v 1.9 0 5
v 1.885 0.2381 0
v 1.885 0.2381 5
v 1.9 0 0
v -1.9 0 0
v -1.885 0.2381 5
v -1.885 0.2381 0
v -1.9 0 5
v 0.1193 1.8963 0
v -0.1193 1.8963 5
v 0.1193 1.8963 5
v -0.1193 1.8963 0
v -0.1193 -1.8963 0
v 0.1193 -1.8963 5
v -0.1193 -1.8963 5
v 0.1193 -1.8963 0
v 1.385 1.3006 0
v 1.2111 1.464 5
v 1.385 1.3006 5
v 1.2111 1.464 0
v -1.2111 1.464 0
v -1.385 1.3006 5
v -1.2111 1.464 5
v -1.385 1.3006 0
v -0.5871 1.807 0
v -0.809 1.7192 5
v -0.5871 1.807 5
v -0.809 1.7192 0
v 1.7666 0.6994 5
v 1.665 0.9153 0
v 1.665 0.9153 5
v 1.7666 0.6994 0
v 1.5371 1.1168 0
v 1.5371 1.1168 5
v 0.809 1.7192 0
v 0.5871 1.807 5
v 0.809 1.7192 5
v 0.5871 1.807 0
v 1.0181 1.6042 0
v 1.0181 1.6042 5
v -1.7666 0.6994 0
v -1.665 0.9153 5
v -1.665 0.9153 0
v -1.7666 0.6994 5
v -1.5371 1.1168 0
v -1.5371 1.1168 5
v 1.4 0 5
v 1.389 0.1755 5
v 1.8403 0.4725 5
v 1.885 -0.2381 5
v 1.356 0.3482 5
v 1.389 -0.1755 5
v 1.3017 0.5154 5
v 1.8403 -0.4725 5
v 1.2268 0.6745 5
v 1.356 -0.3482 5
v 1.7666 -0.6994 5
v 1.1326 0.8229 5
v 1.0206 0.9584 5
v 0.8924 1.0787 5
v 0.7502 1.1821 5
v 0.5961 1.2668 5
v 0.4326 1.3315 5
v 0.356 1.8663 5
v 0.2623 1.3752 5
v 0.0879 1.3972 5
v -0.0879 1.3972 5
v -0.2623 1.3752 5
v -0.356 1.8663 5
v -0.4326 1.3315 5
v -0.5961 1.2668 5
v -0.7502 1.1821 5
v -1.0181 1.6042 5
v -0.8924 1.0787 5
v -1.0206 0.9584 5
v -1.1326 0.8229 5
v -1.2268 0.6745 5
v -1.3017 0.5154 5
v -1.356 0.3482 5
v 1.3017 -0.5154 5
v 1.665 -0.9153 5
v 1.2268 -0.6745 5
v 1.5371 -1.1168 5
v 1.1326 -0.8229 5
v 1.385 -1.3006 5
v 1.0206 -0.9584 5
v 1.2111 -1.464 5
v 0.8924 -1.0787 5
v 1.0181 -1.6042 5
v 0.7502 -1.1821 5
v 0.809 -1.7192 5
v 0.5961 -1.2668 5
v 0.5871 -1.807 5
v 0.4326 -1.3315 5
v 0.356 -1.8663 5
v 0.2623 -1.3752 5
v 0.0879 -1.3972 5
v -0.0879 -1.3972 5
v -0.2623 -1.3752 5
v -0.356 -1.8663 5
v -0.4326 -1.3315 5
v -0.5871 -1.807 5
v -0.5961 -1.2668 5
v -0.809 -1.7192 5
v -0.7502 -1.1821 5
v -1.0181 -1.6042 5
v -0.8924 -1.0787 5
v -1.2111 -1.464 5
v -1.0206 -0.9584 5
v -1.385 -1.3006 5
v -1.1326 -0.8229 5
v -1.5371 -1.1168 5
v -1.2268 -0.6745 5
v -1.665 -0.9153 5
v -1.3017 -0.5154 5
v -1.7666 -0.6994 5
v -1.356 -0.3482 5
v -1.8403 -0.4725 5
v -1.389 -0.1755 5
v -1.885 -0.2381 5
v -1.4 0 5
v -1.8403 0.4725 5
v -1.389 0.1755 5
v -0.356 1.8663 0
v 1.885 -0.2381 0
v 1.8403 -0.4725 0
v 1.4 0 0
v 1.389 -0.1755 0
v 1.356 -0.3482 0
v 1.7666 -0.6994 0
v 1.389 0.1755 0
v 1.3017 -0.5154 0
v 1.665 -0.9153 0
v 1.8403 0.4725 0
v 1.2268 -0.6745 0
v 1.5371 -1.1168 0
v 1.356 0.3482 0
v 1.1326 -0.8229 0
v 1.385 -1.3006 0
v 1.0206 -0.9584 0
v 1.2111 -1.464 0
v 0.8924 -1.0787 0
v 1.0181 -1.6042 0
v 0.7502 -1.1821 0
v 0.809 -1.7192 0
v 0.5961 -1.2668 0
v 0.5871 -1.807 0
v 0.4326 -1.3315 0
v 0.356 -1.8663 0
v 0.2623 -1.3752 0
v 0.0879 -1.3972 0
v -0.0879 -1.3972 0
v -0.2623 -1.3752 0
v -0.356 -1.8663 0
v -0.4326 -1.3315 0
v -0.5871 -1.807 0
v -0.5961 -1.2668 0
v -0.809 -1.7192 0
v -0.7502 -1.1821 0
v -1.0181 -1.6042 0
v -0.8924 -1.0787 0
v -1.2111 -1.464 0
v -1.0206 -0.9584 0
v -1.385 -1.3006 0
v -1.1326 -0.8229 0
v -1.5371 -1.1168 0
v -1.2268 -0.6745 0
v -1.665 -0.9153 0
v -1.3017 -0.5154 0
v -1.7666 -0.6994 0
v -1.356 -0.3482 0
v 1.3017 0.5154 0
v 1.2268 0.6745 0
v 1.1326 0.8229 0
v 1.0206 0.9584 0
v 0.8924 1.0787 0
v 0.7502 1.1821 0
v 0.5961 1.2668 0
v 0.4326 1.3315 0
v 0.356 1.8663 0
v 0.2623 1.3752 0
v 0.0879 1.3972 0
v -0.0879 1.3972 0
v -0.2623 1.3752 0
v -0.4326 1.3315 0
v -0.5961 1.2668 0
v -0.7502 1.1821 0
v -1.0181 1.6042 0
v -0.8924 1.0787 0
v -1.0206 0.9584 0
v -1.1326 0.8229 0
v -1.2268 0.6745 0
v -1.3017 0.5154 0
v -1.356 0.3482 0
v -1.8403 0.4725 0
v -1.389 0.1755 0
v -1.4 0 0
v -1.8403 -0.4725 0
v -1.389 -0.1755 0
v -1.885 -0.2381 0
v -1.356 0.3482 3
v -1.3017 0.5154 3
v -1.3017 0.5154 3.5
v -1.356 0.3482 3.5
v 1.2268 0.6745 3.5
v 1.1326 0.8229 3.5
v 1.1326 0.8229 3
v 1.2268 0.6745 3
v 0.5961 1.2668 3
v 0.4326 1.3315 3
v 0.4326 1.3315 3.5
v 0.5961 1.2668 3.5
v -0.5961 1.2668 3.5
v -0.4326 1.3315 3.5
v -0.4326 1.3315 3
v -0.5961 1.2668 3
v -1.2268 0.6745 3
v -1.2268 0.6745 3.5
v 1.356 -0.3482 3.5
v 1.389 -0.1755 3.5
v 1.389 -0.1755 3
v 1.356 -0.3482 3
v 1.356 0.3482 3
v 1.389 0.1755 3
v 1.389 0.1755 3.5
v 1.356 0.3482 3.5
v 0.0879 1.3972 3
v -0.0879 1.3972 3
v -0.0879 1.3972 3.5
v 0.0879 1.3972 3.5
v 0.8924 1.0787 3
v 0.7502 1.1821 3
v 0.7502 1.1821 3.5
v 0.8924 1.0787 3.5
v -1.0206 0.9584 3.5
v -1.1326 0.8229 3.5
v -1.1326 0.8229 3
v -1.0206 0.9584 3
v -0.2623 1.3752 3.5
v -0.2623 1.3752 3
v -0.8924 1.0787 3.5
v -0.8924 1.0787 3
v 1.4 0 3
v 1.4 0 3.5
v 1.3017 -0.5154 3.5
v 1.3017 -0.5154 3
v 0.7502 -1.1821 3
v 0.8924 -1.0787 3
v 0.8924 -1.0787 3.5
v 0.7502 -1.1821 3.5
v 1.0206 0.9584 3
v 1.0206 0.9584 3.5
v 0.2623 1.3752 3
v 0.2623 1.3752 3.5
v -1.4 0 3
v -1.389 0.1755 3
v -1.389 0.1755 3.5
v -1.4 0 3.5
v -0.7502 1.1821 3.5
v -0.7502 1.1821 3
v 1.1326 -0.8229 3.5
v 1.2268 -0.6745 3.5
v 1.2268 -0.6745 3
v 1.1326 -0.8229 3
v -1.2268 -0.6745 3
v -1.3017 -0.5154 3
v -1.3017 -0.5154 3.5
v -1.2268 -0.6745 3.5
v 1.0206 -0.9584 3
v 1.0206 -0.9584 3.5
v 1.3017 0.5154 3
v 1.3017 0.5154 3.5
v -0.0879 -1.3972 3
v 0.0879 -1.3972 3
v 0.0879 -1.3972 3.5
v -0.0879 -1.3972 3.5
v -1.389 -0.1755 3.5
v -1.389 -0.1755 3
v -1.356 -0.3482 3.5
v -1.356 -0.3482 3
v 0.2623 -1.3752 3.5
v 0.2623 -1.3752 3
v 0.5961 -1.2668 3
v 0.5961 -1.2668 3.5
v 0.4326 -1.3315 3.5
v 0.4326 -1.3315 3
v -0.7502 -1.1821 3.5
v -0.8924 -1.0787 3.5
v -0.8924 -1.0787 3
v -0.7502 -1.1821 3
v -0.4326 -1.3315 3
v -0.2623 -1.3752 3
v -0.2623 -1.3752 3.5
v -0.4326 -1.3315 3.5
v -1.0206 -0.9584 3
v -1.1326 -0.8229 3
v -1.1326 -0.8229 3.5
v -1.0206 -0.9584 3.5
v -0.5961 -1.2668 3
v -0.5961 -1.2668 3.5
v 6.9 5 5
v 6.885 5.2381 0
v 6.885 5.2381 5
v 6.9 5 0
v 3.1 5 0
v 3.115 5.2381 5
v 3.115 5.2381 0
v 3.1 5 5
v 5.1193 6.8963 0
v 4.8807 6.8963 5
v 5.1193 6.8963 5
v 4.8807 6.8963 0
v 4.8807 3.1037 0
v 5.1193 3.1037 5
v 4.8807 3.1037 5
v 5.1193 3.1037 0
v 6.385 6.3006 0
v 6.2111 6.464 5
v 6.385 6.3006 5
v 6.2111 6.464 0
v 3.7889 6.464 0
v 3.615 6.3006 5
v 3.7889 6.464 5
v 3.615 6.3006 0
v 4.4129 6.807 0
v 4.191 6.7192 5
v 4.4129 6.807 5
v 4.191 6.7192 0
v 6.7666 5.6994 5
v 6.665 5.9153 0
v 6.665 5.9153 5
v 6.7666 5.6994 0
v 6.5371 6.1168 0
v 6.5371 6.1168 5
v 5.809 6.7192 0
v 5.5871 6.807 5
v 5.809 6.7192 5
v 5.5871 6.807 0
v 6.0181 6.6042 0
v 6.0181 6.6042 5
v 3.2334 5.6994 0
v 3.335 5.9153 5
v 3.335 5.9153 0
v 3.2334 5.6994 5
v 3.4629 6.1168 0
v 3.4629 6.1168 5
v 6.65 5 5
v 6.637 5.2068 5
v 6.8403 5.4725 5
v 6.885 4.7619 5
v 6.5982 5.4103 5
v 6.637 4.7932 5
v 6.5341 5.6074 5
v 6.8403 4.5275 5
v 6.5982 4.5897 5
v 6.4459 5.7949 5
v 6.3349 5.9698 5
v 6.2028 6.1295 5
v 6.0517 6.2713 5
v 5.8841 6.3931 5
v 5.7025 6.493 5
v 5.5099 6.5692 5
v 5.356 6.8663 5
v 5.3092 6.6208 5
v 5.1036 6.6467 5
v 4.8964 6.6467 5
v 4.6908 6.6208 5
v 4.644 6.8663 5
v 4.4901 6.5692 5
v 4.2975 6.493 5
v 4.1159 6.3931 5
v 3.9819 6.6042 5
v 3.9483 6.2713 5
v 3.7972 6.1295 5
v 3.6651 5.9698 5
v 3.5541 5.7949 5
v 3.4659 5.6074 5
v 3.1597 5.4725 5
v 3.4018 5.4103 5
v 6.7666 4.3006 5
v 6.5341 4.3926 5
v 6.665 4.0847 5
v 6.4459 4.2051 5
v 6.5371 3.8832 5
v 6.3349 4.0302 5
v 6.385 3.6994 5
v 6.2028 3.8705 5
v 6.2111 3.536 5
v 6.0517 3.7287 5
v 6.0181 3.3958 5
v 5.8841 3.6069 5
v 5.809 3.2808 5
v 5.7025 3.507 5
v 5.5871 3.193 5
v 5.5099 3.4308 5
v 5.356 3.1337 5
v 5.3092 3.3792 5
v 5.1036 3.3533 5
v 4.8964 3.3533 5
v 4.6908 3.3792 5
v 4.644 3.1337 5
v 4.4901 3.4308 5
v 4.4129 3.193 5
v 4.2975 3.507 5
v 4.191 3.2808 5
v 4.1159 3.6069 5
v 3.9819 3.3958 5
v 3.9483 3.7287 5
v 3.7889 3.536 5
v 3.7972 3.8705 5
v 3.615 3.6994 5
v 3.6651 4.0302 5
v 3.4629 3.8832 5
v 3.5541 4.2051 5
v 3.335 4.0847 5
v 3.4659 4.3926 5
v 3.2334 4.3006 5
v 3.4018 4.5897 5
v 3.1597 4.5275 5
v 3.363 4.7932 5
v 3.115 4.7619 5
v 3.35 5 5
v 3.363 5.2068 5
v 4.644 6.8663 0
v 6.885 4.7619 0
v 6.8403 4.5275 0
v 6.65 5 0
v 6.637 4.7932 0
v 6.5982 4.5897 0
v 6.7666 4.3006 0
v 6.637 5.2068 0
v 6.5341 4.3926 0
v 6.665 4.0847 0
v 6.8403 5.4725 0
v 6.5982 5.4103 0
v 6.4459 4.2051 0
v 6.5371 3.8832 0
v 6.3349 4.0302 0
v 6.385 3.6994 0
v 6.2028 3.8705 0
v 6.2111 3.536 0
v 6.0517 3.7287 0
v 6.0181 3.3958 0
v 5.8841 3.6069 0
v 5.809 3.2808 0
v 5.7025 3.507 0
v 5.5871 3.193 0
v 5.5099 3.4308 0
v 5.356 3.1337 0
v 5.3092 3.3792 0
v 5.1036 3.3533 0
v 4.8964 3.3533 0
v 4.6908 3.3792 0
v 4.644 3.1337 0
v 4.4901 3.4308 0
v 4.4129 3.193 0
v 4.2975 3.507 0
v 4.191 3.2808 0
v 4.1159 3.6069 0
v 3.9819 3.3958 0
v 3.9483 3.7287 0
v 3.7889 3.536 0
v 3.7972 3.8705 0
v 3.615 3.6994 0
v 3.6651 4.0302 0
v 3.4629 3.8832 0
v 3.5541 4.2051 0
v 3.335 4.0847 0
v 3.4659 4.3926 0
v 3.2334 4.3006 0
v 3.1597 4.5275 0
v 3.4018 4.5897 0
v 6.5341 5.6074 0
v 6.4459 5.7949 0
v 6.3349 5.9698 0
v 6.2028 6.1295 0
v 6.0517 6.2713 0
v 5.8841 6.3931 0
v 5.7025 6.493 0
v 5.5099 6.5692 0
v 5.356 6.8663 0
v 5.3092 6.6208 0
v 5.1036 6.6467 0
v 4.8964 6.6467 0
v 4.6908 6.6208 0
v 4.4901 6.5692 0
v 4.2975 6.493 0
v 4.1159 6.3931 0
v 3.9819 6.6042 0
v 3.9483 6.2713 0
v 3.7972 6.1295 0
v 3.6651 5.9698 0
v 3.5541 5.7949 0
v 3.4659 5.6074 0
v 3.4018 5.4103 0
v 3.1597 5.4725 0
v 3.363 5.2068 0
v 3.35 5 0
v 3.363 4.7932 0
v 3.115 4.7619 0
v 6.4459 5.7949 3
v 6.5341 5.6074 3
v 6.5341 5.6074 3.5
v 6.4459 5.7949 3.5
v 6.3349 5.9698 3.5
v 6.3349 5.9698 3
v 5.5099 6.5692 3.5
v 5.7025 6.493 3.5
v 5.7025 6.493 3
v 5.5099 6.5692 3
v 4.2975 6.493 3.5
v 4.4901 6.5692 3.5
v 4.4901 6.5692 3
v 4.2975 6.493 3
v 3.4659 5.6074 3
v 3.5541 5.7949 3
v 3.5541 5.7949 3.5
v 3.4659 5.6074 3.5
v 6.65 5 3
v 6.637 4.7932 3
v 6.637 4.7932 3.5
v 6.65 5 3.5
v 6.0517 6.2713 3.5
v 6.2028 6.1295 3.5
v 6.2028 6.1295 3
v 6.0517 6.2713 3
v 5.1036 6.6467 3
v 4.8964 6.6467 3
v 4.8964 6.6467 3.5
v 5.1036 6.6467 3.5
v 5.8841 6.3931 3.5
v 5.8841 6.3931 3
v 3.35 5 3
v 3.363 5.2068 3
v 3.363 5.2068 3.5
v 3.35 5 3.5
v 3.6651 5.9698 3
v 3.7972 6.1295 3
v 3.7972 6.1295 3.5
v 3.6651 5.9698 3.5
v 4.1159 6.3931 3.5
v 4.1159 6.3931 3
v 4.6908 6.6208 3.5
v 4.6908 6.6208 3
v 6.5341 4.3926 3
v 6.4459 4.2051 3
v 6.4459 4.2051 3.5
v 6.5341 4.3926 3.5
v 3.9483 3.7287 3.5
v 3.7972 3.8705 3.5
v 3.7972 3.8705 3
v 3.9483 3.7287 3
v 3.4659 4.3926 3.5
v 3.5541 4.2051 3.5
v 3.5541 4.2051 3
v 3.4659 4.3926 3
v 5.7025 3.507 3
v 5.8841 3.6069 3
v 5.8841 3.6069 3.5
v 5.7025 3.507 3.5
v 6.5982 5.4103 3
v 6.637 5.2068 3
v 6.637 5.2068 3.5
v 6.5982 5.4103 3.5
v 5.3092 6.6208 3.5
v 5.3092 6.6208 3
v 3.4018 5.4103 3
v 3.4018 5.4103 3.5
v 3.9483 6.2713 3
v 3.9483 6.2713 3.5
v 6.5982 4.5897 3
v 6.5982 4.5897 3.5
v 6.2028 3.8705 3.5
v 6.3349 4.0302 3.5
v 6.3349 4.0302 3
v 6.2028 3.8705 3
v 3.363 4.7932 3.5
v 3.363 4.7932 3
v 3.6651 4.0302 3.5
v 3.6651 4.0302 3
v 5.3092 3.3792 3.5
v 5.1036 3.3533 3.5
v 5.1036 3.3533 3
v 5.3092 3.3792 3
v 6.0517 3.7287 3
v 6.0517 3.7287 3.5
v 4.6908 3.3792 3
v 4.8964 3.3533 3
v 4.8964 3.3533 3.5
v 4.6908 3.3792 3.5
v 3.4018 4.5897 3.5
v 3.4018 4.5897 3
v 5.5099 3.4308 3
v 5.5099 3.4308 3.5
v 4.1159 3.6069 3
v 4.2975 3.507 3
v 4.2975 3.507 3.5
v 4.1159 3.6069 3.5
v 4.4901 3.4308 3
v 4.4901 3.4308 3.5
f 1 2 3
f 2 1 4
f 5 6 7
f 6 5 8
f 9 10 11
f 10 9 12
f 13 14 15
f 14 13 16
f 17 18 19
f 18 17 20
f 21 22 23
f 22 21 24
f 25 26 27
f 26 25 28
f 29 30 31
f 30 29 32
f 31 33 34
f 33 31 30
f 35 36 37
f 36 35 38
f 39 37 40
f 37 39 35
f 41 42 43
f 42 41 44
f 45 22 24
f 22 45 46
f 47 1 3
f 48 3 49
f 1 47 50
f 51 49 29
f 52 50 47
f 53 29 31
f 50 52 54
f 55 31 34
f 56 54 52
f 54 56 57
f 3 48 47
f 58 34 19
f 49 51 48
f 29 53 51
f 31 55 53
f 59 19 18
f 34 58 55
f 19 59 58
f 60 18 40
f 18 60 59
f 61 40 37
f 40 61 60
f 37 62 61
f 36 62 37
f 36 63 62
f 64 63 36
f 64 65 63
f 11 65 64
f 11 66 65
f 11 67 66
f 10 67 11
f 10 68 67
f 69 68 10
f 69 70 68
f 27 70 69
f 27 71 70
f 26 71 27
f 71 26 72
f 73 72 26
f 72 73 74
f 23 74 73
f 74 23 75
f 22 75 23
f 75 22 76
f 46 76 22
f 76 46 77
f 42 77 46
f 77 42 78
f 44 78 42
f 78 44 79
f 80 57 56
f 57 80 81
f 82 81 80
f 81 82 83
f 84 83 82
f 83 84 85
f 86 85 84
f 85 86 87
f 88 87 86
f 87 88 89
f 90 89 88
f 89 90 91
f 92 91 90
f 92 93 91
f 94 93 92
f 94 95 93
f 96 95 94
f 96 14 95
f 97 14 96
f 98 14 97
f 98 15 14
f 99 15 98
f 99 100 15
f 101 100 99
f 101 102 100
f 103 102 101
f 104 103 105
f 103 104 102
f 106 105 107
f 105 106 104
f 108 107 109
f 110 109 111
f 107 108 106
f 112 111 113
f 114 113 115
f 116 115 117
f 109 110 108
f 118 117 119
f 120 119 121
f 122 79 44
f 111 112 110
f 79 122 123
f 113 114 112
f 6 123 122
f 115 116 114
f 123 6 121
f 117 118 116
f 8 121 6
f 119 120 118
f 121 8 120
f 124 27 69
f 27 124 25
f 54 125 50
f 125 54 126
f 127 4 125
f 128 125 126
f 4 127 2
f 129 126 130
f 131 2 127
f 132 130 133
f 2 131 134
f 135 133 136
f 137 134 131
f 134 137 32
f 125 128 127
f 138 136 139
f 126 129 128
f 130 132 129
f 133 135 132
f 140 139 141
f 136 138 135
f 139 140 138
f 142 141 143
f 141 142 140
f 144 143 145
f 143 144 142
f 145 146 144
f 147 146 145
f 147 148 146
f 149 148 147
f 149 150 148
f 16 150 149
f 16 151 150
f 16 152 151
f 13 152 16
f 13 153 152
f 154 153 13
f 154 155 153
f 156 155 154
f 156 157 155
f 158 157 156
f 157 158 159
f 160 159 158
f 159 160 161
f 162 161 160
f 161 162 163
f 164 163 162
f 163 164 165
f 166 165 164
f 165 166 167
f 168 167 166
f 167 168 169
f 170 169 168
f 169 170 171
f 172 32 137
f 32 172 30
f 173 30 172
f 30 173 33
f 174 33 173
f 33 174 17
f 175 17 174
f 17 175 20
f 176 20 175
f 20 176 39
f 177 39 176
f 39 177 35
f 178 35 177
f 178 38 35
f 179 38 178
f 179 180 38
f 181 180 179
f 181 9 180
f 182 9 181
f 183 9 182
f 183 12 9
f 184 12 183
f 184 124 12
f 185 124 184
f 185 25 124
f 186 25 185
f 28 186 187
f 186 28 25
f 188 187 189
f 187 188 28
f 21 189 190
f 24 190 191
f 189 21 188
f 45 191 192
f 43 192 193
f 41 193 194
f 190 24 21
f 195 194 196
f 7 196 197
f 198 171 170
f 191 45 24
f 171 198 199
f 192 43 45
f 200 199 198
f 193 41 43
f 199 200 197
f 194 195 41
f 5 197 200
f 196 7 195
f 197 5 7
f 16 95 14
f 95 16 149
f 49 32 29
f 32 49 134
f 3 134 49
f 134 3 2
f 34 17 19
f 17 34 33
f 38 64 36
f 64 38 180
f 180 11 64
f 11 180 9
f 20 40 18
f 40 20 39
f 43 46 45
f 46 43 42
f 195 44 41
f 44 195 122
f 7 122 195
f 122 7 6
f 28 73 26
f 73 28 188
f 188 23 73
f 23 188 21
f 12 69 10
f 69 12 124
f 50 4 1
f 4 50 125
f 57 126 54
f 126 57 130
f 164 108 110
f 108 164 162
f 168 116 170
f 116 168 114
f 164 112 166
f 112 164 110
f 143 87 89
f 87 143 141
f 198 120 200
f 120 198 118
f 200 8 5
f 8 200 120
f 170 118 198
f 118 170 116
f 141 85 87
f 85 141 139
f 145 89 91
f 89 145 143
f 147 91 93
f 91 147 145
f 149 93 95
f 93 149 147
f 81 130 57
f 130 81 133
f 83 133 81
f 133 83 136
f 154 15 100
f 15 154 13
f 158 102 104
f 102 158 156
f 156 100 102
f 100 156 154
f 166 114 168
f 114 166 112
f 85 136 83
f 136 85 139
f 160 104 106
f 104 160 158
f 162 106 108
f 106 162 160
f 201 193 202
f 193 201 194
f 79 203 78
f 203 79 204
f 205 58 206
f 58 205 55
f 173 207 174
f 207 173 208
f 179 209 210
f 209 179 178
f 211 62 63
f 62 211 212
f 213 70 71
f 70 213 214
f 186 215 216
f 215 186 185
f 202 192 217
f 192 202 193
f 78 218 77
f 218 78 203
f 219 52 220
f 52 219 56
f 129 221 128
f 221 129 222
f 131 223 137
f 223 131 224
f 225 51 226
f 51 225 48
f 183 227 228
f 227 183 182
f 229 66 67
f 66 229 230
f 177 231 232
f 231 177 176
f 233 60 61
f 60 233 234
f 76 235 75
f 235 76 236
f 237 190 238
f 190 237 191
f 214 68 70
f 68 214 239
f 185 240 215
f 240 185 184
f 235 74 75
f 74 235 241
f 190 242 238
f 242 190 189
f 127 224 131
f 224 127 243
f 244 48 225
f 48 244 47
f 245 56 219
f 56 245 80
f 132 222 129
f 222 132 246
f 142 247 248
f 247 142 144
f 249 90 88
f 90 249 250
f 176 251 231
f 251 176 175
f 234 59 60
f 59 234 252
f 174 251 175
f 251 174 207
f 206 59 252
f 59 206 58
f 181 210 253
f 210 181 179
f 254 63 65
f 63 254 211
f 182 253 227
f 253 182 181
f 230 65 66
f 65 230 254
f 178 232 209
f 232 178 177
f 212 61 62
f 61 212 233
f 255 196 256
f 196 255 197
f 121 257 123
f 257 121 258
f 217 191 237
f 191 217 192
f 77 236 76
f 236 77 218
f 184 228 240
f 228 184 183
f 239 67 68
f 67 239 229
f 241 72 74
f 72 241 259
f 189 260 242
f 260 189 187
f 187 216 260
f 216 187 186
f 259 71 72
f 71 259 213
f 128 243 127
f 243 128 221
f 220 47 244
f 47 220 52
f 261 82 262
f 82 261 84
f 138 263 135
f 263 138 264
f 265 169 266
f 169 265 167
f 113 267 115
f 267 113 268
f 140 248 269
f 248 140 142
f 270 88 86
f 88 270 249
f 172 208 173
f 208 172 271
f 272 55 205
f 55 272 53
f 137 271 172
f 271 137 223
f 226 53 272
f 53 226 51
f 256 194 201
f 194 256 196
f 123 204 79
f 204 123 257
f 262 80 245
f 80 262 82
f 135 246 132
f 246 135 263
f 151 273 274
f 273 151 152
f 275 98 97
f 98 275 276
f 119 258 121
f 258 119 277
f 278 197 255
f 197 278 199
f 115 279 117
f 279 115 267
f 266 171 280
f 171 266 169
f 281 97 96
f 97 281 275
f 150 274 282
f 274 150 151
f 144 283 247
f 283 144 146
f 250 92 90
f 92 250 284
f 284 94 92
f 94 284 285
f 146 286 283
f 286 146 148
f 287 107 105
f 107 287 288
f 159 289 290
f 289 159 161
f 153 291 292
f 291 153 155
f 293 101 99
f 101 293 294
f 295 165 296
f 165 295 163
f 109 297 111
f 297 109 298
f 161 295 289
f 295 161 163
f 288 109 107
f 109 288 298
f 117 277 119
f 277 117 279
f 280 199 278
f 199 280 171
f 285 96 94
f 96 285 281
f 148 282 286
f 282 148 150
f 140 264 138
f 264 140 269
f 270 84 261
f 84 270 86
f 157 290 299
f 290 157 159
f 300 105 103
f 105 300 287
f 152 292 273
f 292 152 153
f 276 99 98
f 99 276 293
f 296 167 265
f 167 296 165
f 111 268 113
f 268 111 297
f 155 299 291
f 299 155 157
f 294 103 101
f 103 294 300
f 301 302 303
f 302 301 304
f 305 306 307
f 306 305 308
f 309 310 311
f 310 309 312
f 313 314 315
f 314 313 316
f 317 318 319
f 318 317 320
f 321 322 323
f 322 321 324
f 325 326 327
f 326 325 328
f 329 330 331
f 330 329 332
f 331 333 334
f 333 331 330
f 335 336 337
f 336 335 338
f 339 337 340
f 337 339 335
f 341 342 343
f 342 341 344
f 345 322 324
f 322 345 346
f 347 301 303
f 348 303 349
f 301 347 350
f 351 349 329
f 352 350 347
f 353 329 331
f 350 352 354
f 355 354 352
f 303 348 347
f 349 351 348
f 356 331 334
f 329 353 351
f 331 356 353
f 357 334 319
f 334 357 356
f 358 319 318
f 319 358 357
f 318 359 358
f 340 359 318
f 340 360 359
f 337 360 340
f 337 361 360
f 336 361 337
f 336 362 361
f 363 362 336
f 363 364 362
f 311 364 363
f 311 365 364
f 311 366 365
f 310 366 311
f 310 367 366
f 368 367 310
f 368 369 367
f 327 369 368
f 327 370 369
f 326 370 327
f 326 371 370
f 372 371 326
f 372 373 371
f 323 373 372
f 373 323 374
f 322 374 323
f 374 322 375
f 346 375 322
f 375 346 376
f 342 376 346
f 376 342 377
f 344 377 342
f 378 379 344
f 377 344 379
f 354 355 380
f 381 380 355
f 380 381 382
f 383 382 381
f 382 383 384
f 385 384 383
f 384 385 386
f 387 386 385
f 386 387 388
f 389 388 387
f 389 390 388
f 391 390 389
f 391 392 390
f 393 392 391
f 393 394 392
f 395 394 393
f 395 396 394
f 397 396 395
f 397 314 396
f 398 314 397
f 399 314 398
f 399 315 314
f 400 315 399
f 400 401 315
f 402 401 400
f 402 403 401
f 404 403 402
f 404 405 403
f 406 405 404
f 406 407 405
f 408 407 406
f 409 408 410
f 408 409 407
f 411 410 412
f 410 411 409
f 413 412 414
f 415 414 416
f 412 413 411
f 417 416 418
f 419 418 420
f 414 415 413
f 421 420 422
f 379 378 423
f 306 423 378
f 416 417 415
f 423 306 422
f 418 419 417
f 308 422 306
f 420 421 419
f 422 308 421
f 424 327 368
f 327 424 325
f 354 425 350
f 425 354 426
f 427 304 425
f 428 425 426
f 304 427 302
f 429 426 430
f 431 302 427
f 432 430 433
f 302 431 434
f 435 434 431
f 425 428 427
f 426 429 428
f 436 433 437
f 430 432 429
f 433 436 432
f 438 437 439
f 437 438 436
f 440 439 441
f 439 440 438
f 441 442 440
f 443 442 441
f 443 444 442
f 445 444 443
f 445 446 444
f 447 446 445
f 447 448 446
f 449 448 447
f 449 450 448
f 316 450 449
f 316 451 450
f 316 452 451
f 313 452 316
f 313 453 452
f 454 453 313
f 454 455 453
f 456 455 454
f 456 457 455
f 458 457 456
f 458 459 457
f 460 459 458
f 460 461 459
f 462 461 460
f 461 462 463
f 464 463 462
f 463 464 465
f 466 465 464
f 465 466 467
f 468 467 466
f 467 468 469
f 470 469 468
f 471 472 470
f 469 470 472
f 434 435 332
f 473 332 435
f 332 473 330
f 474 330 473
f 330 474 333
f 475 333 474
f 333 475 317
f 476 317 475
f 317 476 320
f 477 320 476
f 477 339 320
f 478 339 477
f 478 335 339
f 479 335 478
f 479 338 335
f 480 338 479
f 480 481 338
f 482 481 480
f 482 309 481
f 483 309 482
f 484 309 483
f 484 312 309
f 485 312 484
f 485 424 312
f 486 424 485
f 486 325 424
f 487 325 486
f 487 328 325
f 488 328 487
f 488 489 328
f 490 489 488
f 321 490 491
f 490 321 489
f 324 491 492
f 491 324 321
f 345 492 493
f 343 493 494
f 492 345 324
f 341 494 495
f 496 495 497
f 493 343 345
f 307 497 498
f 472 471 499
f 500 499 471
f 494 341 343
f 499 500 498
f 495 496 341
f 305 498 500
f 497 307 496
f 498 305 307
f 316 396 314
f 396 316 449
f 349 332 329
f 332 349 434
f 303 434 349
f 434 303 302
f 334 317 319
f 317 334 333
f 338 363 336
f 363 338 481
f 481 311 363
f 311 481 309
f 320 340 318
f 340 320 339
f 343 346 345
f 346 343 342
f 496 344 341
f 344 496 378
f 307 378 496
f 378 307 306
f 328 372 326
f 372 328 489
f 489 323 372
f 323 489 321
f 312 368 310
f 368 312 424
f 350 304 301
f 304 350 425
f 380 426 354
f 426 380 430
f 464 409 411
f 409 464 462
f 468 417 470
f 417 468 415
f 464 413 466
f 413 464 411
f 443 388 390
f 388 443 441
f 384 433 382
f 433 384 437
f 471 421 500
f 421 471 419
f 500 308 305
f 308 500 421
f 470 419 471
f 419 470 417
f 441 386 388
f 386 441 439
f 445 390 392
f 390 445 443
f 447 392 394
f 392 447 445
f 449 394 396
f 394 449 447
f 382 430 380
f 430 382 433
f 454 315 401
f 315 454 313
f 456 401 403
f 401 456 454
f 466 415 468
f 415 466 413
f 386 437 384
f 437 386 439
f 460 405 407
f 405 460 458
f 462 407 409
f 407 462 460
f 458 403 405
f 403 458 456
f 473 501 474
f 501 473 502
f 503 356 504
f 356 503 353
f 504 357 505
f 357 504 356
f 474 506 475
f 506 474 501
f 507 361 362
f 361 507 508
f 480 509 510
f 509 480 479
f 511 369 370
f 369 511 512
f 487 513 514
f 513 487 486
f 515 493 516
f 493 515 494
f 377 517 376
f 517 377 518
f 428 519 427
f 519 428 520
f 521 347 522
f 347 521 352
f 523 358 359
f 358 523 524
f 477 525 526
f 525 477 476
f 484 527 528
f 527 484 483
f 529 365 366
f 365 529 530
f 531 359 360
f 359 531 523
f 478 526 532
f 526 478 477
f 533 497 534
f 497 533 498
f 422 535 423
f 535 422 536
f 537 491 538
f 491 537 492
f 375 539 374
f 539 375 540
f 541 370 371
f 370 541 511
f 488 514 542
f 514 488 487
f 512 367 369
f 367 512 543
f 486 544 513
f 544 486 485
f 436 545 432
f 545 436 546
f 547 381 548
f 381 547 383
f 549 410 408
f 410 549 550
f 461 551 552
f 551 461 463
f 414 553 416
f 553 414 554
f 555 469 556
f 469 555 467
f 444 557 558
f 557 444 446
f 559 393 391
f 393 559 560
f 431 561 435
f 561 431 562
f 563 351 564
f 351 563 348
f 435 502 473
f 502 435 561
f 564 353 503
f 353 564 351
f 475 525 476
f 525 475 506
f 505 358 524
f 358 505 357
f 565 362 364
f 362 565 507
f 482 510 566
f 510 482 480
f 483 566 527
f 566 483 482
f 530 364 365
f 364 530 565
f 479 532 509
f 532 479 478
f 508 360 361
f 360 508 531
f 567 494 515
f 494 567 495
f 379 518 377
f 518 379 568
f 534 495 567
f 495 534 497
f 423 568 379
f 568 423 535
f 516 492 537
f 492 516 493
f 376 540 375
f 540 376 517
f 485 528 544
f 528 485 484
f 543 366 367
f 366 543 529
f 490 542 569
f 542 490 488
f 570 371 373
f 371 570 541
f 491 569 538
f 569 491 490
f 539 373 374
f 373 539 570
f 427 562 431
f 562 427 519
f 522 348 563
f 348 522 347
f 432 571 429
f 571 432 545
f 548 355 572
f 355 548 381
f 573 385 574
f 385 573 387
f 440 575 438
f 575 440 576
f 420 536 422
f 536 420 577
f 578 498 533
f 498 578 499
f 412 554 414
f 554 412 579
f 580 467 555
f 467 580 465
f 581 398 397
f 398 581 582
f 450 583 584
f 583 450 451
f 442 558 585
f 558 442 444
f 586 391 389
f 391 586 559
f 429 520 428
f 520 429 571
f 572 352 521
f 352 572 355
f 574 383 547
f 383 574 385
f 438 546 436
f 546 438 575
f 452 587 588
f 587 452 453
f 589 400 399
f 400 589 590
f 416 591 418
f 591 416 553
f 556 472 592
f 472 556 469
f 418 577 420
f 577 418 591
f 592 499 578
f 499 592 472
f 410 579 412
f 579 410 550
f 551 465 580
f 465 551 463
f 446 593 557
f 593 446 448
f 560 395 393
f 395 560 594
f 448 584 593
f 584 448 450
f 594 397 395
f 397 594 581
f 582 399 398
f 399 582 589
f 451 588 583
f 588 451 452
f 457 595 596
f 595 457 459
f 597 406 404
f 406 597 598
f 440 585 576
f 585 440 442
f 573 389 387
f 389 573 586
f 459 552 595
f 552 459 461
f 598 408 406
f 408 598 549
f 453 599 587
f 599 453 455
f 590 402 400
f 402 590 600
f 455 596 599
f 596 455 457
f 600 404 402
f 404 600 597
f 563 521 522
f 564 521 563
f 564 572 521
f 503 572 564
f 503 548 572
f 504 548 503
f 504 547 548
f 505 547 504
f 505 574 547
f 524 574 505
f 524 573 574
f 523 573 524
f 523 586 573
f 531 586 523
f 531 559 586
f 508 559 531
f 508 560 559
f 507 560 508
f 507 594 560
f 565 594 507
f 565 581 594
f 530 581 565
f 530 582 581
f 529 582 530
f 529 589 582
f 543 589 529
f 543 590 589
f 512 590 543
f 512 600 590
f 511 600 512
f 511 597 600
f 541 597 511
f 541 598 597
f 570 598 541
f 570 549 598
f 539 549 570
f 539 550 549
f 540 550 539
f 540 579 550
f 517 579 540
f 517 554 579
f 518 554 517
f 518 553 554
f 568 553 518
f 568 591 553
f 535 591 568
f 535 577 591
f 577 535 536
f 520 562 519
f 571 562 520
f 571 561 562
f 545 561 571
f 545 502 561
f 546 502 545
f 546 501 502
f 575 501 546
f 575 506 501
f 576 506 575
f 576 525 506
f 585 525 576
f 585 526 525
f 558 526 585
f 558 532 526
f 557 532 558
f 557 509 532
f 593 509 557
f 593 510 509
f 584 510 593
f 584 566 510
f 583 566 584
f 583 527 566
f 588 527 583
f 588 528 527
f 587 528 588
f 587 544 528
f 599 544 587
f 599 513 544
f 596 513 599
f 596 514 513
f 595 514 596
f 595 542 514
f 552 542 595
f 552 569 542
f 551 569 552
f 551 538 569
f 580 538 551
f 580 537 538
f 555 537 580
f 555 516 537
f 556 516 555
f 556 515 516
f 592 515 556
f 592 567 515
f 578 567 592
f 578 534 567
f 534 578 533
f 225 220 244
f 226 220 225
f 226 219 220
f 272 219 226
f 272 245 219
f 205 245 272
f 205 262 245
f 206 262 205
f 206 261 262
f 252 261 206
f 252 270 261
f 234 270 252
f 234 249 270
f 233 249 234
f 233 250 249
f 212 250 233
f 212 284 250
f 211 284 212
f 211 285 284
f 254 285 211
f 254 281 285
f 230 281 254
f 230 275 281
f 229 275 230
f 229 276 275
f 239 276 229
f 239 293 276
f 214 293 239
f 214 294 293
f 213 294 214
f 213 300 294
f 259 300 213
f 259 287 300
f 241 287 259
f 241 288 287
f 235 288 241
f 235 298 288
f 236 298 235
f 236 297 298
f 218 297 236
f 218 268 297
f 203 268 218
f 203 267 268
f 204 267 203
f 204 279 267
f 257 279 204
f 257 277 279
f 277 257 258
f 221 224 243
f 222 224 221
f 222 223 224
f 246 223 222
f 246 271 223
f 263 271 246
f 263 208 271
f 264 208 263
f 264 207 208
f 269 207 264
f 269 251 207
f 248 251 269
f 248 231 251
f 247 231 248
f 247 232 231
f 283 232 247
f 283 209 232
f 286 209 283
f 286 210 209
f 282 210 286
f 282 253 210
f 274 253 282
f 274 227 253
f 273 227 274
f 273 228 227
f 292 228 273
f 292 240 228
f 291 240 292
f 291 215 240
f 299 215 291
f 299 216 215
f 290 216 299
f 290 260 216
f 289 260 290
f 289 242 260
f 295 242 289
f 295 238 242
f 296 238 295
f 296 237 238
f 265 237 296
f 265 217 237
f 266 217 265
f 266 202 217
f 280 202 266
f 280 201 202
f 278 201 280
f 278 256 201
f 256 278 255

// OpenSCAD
// For scanning a small gastropod shell on the smallest sample changer holder
 
$fn=50;
height=5;
holderdiameter=3.8;
 
// hollow 'connector' to sample changer holder
difference(){
    cylinder(height, d=holderdiameter);
    cylinder(height, d=holderdiameter-1);
    }   
translate([0,0,height-2]) cylinder(0.5, d=holderdiameter);

translate([5,5,0]) {    
    difference(){
        cylinder(height, d=holderdiameter);
        cylinder(height, d=holderdiameter-0.5);
        }   
    translate([0,0,height-2]) cylinder(0.5, d=holderdiameter);
    }
